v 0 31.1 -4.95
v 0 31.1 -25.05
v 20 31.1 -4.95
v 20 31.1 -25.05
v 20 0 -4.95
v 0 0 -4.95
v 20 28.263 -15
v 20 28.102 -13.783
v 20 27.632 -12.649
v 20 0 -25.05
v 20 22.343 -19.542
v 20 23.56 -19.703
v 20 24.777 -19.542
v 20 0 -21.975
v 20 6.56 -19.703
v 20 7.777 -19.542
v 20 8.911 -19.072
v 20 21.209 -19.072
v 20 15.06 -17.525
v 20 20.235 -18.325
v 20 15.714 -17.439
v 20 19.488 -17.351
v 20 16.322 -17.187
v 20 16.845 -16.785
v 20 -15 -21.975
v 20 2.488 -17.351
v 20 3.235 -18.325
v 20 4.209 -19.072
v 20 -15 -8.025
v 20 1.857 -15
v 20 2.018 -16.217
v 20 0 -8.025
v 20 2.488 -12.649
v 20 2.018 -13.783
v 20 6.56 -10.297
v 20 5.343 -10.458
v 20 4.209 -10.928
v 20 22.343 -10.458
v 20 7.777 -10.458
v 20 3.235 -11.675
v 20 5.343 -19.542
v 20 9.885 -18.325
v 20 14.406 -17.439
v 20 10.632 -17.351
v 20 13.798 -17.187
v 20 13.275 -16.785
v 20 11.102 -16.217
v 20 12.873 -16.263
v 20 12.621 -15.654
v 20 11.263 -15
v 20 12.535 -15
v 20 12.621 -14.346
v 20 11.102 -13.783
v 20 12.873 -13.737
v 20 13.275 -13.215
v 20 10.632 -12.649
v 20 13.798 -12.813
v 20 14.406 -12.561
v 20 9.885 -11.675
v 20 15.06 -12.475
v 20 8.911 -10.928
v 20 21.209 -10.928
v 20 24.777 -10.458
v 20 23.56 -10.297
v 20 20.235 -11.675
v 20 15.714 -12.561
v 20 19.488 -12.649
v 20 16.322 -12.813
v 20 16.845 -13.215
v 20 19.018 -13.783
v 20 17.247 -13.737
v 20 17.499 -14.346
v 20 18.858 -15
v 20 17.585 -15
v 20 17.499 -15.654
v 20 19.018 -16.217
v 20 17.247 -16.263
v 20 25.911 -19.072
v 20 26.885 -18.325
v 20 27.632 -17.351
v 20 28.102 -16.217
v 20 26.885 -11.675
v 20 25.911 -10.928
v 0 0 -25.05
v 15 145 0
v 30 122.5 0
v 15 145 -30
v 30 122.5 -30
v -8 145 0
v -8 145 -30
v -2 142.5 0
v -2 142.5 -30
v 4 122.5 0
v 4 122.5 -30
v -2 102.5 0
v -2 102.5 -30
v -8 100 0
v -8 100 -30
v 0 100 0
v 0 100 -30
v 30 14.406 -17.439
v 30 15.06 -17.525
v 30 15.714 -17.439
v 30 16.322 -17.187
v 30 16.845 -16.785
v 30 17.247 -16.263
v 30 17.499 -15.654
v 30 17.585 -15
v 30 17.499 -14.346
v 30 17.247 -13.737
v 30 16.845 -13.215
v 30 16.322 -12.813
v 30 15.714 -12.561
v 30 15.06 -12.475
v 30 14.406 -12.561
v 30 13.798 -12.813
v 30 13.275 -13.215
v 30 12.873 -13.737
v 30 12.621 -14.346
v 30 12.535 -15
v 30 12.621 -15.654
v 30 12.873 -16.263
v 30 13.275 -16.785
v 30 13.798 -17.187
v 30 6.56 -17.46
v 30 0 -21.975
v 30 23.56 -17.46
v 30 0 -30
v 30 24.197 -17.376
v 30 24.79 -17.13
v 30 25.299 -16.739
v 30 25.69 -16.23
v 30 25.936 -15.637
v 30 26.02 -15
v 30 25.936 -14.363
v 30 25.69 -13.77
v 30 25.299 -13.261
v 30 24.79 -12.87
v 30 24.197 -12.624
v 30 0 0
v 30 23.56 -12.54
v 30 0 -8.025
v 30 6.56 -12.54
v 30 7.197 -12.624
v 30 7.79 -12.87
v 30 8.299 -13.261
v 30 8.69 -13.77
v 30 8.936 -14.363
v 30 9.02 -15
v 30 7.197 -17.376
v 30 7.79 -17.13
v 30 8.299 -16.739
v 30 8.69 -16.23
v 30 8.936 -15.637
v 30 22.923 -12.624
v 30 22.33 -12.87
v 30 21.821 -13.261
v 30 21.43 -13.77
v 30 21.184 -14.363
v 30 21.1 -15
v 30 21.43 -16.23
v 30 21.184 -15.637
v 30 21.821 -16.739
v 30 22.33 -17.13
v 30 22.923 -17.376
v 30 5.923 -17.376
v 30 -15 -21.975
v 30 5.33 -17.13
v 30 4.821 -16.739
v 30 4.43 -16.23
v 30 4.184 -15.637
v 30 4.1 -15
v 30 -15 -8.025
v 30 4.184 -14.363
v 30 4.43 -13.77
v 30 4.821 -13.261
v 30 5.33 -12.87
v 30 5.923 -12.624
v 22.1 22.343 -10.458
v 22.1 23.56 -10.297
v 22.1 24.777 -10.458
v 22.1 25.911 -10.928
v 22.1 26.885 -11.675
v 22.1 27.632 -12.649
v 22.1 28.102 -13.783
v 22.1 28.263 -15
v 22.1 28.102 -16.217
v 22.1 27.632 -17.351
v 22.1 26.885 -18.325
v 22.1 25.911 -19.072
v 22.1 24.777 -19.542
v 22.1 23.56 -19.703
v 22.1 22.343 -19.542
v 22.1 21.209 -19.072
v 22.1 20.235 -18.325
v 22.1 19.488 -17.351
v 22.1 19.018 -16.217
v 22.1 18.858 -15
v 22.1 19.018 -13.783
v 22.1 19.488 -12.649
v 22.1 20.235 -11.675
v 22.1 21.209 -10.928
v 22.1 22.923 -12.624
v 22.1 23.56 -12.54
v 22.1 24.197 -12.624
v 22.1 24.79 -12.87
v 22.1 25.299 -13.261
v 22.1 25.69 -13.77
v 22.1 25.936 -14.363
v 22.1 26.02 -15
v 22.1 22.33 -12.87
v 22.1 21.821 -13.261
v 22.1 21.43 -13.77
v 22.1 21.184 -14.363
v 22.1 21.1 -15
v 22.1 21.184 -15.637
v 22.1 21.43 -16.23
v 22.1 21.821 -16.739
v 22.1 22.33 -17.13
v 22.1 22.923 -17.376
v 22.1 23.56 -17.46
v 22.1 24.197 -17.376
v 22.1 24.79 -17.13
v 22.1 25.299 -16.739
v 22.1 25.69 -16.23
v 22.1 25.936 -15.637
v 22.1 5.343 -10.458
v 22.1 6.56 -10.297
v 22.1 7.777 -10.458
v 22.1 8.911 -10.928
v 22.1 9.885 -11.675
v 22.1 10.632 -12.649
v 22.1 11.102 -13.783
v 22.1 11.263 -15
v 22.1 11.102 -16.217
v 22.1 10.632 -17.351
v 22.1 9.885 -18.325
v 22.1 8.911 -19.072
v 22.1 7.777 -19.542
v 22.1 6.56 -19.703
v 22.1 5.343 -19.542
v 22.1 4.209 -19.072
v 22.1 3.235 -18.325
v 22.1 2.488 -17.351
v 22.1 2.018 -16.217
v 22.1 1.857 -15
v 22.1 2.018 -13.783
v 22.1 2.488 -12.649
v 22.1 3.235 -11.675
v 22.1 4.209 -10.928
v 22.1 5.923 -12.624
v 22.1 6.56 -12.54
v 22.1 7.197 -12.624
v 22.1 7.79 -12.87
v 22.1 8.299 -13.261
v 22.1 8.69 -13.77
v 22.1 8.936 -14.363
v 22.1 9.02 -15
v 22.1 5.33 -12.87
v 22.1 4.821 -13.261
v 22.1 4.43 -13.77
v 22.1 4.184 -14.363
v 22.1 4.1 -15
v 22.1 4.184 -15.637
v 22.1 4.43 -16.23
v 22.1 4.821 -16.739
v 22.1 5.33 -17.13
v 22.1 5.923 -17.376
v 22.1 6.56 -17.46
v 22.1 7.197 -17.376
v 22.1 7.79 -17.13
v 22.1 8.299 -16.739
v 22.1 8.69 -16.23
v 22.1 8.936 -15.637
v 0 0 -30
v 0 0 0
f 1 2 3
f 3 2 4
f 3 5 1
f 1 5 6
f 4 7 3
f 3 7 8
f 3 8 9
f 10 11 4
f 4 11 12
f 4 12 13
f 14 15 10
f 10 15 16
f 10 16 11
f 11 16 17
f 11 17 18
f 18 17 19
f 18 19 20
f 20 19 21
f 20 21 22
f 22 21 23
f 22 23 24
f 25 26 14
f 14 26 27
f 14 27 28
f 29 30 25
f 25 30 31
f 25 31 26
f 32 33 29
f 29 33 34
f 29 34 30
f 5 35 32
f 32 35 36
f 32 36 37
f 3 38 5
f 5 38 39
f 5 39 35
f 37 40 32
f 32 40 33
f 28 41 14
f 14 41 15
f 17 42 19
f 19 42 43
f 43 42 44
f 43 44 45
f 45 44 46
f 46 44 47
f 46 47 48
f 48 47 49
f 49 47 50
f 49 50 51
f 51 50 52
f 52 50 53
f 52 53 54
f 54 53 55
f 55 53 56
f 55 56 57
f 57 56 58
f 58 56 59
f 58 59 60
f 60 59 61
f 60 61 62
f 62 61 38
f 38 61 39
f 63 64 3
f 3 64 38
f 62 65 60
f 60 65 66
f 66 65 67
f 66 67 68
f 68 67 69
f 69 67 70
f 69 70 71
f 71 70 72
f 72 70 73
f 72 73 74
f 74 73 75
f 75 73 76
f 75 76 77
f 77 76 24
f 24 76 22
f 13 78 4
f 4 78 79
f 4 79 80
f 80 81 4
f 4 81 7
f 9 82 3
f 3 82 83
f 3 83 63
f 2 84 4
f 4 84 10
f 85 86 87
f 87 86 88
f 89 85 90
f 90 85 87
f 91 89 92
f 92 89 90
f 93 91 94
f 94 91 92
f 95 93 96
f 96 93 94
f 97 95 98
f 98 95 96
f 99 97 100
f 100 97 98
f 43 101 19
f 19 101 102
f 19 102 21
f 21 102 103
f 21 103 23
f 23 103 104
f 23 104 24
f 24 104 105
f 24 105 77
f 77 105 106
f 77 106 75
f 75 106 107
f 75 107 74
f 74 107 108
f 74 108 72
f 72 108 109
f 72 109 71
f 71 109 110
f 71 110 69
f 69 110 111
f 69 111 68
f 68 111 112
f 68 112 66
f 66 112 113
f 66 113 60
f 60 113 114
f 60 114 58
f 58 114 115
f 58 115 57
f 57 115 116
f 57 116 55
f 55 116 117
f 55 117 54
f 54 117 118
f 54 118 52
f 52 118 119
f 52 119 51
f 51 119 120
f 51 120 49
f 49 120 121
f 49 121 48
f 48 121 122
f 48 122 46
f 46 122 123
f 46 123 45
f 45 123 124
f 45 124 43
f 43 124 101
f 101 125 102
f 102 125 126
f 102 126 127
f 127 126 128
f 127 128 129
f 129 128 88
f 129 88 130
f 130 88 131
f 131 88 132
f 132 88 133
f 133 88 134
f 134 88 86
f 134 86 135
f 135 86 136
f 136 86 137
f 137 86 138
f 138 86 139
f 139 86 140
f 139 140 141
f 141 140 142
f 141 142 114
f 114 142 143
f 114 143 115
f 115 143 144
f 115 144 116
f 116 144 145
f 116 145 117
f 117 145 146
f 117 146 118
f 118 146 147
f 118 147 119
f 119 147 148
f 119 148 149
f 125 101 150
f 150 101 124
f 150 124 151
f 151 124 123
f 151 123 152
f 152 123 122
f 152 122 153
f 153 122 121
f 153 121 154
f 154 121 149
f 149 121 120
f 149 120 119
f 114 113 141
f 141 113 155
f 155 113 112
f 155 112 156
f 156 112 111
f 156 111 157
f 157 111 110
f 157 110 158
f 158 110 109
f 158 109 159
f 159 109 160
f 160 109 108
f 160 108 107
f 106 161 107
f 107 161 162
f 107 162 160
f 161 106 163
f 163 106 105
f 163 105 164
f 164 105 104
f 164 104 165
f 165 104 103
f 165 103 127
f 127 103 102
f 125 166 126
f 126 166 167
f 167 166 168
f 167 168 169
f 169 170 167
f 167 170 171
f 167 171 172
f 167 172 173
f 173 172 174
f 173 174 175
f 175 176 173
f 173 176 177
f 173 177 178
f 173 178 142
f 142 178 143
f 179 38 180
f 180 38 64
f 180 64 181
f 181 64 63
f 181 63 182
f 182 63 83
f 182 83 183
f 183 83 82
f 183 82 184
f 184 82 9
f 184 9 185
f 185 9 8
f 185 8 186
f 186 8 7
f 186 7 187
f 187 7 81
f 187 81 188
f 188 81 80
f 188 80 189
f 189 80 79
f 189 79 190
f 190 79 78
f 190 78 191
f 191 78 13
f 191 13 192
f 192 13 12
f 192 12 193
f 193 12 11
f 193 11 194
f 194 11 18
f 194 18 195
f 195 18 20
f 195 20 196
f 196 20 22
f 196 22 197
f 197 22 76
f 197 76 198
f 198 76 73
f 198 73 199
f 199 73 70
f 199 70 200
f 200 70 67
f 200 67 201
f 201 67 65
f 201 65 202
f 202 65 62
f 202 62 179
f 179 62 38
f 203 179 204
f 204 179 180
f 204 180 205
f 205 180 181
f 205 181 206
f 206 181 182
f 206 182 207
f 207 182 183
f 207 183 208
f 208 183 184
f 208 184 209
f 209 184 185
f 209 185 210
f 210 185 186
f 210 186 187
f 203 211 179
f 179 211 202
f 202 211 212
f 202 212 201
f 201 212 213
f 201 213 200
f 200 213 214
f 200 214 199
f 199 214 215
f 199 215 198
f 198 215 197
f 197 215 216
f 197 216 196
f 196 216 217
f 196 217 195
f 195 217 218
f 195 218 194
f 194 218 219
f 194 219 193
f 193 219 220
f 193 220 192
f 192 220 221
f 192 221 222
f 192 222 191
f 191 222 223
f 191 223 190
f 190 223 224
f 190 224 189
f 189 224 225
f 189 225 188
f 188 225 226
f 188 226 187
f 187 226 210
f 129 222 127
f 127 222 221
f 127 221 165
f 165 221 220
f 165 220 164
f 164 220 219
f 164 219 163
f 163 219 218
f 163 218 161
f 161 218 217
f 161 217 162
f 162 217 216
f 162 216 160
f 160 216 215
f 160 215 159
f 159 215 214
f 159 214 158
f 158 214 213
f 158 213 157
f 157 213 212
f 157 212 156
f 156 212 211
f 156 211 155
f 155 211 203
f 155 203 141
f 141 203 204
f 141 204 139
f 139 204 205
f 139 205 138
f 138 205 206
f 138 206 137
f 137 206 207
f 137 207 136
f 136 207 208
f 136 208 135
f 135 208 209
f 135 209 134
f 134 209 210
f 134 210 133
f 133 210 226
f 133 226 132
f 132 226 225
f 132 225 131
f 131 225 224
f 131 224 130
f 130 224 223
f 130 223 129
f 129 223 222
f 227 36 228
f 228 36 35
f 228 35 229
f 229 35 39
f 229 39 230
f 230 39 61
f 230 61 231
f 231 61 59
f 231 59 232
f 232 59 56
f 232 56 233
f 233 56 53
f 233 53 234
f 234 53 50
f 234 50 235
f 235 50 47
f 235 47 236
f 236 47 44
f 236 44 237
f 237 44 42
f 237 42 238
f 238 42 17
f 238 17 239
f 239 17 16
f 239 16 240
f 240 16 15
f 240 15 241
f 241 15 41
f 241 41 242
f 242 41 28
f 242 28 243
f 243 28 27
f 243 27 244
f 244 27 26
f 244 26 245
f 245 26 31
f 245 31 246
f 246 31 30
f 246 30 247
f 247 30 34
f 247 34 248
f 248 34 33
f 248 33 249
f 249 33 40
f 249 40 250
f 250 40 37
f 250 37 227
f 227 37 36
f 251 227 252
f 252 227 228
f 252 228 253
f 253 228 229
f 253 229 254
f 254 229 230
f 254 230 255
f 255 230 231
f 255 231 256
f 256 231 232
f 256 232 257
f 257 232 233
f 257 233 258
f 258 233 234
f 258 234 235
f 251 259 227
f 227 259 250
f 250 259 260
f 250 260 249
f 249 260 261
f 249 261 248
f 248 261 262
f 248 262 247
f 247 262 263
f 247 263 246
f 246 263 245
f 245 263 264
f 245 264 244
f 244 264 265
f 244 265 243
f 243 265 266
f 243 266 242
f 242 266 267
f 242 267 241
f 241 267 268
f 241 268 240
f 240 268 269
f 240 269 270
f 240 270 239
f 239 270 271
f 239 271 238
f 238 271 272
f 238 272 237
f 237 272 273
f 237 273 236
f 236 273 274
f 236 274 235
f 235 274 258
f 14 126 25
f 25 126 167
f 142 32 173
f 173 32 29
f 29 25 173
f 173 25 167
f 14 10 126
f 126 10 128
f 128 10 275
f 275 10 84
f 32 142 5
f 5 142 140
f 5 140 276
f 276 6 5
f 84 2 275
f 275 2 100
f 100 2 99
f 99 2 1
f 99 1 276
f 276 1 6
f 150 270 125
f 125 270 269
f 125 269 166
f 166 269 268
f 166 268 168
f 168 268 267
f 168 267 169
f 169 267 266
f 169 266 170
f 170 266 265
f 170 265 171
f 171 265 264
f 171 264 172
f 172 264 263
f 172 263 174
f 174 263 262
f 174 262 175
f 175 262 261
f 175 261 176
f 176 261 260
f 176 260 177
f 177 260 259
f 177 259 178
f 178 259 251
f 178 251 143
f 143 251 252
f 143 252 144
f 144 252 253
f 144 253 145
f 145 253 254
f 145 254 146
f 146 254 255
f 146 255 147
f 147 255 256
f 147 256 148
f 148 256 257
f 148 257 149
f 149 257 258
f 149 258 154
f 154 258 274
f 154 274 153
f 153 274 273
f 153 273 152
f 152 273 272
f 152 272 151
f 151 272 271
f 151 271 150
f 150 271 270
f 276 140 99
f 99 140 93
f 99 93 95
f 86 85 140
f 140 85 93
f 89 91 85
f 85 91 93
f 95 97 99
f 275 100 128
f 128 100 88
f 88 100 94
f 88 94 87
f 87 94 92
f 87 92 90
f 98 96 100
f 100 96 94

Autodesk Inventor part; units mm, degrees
ref_plane "YZ Plane" through (0, 0, 0) normal (1, 0, 0) x (0, 1, 0)
ref_plane "XZ Plane" through (0, 0, 0) normal (0, 1, 0) x (-1, 0, 0)
ref_plane "XY Plane" through (0, 0, 0) normal (0, 0, 1) x (1, 0, 0)
sketch "Sketch1" plane through (0, 0, 0) normal (0, 0, 1) x (1, 0, 0)
  line L0 (0, 0) -> (25, 0)
  line L1 (25, 0) -> (25, 40)
  line L2 (25, 40) -> (0, 40)
  line L3 (0, 40) -> (0, 0)
  dimension "d1" = 25
  dimension "d2" = 40
  dimension "d3" = 25
extrude "Extrusion1" add sketch "Sketch1" against normal blind 30
sketch "Sketch2" plane through (25, 0, 0) normal (1, 0, 0) x (0, 0, -1)
  line L0 (0, 0) -> (30, 0) projected
  circle A0 centre (15, 6.56) radius 2.46
extrude "Extrusion2" cut sketch "Sketch2" against normal blind 30
sketch "Sketch3" plane through (0, 0, 0) normal (-1, 0, 0) x (0, 0, 1)
  line L0 (0, 0) -> (-30, 0) projected
  line L1 (-25.05, 0) -> (-4.95, 0)
  line L2 (-4.95, 0) -> (-4.95, 33.12)
  line L3 (-4.95, 33.12) -> (-25.05, 33.12)
  line L4 (-25.05, 33.12) -> (-25.05, 0)
  dimension "d11" = 20.1
extrude "Extrusion3" cut sketch "Sketch3" against normal blind 20
sketch "Sketch4" plane through (0, 0, 0) normal (0, -1, 0) x (1, 0, 0)
  line L0 (20, -4.95) -> (20, -25.05) projected
  line L1 (20, -15) -> (25, -15)
  line L2 (25, 0) -> (25, -30) projected
  line L3 (20, -8.025) -> (25, -8.025)
  line L4 (25, -8.025) -> (25, -21.975)
  line L5 (25, -21.975) -> (20, -21.975)
  line L6 (20, -21.975) -> (20, -8.025)
  line L7 (20, -8.025) -> (25, -21.975) construction
  line L8 (25, -8.025) -> (20, -21.975) construction
  line L9 (25, -12.54) -> (25, -17.46) projected
  point P0 (0, 0)
  point P1 (22.5, -15)
  dimension "d14" = 13.95
extrude "Extrusion4" add sketch "Sketch4" along normal blind 15
sketch "Sketch5" plane through (20, 0, 0) normal (-1, 0, 0) x (0, 0, 1)
  circle A0 centre (-15, 6.56) radius 2.46 projected
  circle A1 centre (-15, 6.56) radius 4.7025
  circle A2 centre (-15, 6.56) radius 2.46 projected
  circle A3 centre (-15, 6.56) radius 2.46
  point P0 (0, 0)
  dimension "d17" = 9.405
extrude "Extrusion5" cut sketch "Sketch5" against normal blind 2.1
sketch "Sketch6" plane through (25, 0, 0) normal (1, 0, 0) x (0, 0, -1)
  circle A0 centre (15, 6.56) radius 4.7025 projected
  line L0 (15, 6.56) -> (15, 23.56)
  circle A1 centre (15, 23.56) radius 2.46
  point P0 (0, 0)
  dimension "d20" = 17
  dimension "d21" = 4.92
extrude "Extrusion6" cut sketch "Sketch6" against normal blind 10 contours A1
sketch "Sketch7" plane through (20, 0, 0) normal (-1, 0, 0) x (0, 0, 1)
  circle A0 centre (-15, 23.56) radius 2.46 projected
  circle A1 centre (-15, 23.56) radius 4.7025
  point P0 (0, 0)
  dimension "d24" = 9.405
extrude "Extrusion7" cut sketch "Sketch7" against normal blind 2.1
sketch "Sketch9" plane through (25, 0, 0) normal (1, 0, 0) x (0, 0, -1)
  circle A0 centre (15, 6.56) radius 2.46 projected
  circle A1 centre (15, 6.56) radius 2.46
  circle A2 centre (15, 23.56) radius 2.46 projected
  circle A3 centre (15, 23.56) radius 2.46
  line L0 (30, 40) -> (30, 0) projected
  line L1 (30, 0) -> (30, 40)
  line L2 (30, 40) -> (0, 40)
  line L3 (0, 40) -> (0, 0)
  line L4 (0, 0) -> (8.025, 0) projected
  line L5 (21.975, 0) -> (21.975, -15)
  line L6 (21.975, -15) -> (8.025, -15)
  line L7 (8.025, -15) -> (8.025, 0)
  line L8 (0, 0) -> (8.025, 0)
  line L9 (21.975, 0) -> (30, 0)
extrude "Extrusion8" add sketch "Sketch9" along normal blind 5
sketch "Sketch10" plane through (0, 40, 0) normal (0, 1, 0) x (1, 0, 0)
  line L0 (0, 30) -> (30, 30) projected
  line L1 (30, 0) -> (0, 0) projected
  line L2 (0, 30) -> (30, 30)
  line L3 (30, 30) -> (30, 0)
  line L4 (30, 0) -> (0, 0)
  line L5 (0, 0) -> (0, 30)
extrude "Extrusion9" add sketch "Sketch10" along normal blind 30
sketch "Sketch12" plane through (30, 0, 0) normal (1, 0, 0) x (0, 0, -1)
  circle A0 centre (15, 6.56) radius 2.46 projected
  line L0 (15, 6.56) -> (15, 15.06)
  circle A1 centre (15, 15.06) radius 2.525
  point P0 (0, 0)
  dimension "d31" = 8.5
  dimension "d33" = 5.05
extrude "Extrusion10" cut sketch "Sketch12" against normal blind 30 contours A1
sketch "Sketch14" plane through (0, 0, 0) normal (0, 0, 1) x (1, 0, 0)
  line L0 (30, 70) -> (0, 70) projected
  line L1 (0, 100) -> (-8, 100)
  line L2 (30, 0) -> (30, 70) projected
  line L3 (30, 118) -> (30, 70)
  line L4 (30, 105) -> (30, 100)
  line L5 (0, 70) -> (30, 70) projected
  line L6 (0, 70) -> (0, 100)
  line L7 (-8, 145) -> (15, 145)
  line L8 (-2, 142.5) -> (-8, 145)
  line L9 (-2, 102.5) -> (-8, 100)
  line L10 (-2, 102.5) -> (4, 122.5)
  line L11 (4, 122.5) -> (-2, 142.5)
  line L12 (15, 145) -> (30, 122.5)
  line L13 (30, 122.5) -> (30, 118)
  point P0 (0, 0)
  dimension "d47" = 30
  dimension "d85" = 45
extrude "Extrusion12" add sketch "Sketch14" against normal blind 30
sketch "Sketch15" plane through (0, 0, -25.05) normal (-1, 0, 0) x (0, 0, 1)
  line L0 (0, 33.12) -> (20.1, 33.12) projected
  line L1 (20.1, 33.12) -> (20.1, 0) projected
  line L2 (0, 33.12) -> (20.1, 33.12)
  line L3 (20.1, 33.12) -> (20.1, 31.1)
  line L4 (20.1, 31.1) -> (0, 31.1)
  line L5 (0, 31.1) -> (0, 33.12)
  point P0 (25.05, 0)
  dimension "d57" = 2.02
extrude "Extrusion13" add sketch "Sketch15" against normal blind 20
properties part number "40mm_x_30mm"
